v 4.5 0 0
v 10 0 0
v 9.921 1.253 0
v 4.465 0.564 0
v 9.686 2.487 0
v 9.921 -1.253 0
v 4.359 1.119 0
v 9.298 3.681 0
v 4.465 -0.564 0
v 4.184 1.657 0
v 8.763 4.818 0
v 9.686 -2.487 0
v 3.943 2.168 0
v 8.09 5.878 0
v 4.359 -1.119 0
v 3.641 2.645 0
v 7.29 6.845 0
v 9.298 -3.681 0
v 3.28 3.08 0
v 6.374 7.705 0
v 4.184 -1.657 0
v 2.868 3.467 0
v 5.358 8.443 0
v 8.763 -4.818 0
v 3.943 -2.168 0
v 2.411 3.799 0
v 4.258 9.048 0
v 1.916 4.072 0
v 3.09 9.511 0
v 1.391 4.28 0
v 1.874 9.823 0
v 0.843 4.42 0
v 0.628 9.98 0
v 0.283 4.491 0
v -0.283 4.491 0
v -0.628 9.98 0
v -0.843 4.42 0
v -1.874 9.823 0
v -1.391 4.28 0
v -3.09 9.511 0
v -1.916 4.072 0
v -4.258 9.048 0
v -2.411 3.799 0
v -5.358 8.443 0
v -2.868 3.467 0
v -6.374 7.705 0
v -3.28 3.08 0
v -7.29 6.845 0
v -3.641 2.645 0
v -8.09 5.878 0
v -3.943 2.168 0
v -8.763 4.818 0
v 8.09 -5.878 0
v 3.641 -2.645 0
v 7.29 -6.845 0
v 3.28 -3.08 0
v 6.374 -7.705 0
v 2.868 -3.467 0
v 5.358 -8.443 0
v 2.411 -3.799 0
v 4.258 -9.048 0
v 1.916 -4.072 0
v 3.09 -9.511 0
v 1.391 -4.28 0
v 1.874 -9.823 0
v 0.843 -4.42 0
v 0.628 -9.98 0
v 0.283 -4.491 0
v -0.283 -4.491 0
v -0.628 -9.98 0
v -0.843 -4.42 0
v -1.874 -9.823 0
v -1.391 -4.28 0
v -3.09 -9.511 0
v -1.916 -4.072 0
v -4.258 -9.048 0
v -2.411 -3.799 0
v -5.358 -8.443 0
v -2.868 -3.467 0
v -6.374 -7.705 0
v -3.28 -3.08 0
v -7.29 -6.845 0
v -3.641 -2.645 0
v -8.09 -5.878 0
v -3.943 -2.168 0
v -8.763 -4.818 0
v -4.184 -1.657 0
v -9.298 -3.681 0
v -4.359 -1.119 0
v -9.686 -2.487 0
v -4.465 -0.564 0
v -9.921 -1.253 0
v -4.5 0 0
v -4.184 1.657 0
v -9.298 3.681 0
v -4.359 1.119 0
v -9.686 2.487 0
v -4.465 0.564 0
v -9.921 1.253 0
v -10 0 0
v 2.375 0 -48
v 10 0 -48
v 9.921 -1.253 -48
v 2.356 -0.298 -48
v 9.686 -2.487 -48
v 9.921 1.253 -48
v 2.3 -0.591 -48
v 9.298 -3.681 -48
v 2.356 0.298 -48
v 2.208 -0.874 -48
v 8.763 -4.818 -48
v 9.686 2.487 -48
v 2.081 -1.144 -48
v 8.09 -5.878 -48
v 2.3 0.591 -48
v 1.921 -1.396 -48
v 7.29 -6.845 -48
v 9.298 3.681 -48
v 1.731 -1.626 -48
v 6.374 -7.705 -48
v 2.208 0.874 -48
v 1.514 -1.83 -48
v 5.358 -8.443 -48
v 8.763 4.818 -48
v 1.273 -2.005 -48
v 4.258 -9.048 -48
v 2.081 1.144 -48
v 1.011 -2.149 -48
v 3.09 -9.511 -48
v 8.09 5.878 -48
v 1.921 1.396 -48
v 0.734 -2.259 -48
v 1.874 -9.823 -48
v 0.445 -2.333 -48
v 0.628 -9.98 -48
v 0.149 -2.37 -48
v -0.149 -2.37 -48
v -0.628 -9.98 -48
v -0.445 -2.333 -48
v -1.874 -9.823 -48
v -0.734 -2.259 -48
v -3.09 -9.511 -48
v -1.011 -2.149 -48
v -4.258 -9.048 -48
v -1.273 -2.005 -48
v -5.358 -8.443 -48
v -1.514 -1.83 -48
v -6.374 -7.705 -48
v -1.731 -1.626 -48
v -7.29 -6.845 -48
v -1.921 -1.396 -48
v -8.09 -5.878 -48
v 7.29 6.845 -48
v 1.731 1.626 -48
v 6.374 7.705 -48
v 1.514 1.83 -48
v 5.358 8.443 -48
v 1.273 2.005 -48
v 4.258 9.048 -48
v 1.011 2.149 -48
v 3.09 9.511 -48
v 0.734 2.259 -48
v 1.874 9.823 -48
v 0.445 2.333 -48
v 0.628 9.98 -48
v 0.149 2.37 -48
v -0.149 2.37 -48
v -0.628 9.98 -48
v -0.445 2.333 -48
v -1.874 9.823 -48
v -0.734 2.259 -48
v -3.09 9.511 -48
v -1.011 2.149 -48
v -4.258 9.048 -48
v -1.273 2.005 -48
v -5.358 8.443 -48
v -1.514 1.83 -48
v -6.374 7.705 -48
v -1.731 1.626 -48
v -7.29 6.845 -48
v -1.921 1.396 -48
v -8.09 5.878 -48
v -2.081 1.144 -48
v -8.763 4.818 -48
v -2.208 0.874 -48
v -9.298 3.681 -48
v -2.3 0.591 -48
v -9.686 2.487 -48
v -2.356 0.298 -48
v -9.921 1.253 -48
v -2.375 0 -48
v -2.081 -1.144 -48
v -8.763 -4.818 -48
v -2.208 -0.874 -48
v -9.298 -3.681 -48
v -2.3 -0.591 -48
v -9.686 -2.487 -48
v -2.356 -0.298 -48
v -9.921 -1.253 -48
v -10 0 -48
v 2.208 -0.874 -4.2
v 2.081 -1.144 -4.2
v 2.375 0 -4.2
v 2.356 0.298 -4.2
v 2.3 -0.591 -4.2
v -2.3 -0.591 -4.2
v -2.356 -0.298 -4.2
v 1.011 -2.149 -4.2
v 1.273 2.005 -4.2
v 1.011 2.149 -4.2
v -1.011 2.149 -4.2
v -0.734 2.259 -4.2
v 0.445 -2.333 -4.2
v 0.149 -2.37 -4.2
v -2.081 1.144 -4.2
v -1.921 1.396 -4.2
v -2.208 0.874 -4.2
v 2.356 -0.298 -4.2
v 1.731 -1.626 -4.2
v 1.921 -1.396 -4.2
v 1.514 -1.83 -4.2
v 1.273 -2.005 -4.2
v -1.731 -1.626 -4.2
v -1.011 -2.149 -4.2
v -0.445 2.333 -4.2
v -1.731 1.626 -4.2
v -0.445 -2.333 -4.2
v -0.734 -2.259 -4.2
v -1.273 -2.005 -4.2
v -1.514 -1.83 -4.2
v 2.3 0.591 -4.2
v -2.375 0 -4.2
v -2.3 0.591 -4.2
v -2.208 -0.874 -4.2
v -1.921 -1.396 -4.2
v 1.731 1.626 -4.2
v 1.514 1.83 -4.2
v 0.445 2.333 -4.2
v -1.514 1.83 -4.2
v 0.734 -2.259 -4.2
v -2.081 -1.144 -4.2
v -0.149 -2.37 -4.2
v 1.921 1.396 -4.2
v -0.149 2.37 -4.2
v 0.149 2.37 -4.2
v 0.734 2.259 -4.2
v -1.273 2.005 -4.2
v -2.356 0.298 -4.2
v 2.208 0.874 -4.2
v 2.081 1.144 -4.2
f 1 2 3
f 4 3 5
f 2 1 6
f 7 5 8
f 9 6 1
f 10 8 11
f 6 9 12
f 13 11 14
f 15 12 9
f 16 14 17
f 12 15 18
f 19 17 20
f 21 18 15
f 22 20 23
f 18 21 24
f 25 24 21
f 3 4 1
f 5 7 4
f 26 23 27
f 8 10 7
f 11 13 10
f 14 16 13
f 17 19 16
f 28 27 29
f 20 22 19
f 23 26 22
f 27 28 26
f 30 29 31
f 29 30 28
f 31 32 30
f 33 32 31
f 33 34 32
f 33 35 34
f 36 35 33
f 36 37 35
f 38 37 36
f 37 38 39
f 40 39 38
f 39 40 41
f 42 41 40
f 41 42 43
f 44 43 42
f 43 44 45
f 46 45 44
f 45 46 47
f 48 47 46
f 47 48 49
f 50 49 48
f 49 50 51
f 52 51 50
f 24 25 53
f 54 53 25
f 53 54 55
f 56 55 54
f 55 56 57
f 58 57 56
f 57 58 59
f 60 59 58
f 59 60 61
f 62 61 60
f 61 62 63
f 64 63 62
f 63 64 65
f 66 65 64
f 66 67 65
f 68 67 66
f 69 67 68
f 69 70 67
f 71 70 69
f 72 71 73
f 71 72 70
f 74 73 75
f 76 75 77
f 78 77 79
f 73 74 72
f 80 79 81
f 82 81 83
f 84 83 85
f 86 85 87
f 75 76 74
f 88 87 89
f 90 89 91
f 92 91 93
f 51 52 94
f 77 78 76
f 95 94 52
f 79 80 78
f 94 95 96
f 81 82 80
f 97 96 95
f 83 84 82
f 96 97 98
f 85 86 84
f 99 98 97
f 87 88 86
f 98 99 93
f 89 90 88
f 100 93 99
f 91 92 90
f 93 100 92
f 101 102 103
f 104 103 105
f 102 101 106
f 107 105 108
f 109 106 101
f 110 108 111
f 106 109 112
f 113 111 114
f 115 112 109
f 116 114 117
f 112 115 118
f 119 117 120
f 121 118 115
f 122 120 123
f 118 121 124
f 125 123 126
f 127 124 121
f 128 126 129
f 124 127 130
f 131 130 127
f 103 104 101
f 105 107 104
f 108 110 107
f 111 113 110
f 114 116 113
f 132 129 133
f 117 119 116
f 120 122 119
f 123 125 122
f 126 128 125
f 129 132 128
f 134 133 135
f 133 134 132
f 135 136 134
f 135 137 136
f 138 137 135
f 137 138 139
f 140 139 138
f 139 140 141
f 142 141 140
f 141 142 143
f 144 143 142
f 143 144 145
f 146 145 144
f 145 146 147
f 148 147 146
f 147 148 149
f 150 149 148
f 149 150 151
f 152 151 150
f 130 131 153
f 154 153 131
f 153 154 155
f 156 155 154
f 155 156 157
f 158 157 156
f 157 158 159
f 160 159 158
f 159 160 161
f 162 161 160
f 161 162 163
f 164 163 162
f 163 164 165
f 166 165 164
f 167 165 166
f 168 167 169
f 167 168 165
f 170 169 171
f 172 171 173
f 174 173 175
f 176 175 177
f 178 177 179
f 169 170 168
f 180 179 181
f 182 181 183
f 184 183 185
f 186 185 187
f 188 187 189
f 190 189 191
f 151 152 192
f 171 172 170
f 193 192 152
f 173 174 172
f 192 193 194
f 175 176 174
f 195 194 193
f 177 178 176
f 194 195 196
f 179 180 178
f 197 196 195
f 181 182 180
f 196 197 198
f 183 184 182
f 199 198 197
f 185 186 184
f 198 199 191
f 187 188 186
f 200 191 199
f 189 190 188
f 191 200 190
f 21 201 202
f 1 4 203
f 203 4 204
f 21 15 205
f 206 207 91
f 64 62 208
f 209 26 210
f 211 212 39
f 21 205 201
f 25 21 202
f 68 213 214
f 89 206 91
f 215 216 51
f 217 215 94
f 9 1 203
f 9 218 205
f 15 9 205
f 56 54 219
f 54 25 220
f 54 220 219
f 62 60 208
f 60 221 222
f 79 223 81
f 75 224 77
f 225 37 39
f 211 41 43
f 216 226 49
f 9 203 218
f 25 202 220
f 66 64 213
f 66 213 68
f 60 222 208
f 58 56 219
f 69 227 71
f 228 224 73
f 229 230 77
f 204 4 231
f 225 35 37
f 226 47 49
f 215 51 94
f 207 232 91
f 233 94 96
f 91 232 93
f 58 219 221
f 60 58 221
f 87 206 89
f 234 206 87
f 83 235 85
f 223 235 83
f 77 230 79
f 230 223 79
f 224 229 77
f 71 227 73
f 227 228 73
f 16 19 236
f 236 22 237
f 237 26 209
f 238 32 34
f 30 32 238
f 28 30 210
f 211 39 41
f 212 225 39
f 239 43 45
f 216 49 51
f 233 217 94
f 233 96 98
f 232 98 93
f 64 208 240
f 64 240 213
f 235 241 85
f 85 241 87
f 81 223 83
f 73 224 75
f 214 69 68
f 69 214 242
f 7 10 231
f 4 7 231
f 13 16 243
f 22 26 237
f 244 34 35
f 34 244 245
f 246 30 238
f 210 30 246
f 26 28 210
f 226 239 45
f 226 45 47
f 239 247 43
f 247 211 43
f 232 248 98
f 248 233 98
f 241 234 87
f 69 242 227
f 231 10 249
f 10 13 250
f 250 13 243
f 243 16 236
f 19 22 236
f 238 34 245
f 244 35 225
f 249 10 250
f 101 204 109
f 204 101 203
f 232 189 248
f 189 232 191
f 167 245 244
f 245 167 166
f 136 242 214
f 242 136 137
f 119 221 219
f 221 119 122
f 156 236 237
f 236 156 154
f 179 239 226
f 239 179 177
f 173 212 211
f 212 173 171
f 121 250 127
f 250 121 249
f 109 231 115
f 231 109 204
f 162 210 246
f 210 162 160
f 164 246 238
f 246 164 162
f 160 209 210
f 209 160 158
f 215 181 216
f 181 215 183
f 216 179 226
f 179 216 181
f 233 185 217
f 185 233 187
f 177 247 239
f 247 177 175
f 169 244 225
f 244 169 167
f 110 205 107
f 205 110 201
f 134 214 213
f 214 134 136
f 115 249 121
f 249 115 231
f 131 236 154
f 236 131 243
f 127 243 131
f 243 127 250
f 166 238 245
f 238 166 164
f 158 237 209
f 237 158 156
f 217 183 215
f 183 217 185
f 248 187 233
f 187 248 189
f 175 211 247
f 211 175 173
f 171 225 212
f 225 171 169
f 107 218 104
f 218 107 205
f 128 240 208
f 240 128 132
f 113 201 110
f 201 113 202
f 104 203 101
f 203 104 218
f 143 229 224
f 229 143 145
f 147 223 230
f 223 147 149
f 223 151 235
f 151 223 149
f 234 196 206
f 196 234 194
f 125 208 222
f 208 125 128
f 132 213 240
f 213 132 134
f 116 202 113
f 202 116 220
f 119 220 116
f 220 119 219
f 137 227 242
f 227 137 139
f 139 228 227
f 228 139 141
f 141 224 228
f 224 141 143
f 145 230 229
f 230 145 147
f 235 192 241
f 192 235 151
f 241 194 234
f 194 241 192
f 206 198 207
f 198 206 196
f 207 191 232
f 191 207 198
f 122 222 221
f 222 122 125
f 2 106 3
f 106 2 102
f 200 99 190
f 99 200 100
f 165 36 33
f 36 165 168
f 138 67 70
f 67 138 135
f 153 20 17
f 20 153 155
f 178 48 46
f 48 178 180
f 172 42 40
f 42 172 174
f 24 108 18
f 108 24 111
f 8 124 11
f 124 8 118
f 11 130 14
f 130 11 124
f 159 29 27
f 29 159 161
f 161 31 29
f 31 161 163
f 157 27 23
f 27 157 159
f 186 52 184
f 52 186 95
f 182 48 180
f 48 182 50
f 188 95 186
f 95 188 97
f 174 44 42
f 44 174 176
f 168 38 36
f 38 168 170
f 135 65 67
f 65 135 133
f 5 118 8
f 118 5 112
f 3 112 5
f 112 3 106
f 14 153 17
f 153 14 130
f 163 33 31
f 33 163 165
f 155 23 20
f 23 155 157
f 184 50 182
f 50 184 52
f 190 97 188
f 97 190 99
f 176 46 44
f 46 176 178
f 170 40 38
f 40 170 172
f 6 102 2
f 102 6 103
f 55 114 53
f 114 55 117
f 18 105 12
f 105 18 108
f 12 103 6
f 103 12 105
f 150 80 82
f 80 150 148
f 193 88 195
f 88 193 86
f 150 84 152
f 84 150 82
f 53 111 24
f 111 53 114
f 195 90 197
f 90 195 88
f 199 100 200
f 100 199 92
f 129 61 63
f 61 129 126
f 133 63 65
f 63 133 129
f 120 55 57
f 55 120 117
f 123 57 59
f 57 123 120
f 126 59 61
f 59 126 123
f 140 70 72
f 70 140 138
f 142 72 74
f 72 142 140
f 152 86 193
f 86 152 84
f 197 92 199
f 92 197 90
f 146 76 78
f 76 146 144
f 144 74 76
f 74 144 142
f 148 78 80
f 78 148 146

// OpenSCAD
$fn = 50;


difference() {
	union() {
		translate(v = [0, 0, -48.0000000000]) {
			cylinder(h = 48, r = 10.0000000000);
		}
		cylinder(h = 0, r = 19.0000000000);
	}
	union() {
		translate(v = [0, 0, 0]) {
			rotate(a = [0, 0, 0]) {
				difference() {
					union() {
						#translate(v = [0, 0, -48.0000000000]) {
							cylinder(h = 48, r = 2.2500000000);
						}
						#translate(v = [0, 0, -4.2000000000]) {
							cylinder(h = 4.2000000000, r1 = 2.3750000000, r2 = 4.5000000000);
						}
						#translate(v = [0, 0, -48.0000000000]) {
							cylinder(h = 48, r = 2.3750000000);
						}
						#translate(v = [0, 0, -48.0000000000]) {
							cylinder(h = 48, r = 2.2500000000);
						}
					}
					union();
				}
			}
		}
	}
}
